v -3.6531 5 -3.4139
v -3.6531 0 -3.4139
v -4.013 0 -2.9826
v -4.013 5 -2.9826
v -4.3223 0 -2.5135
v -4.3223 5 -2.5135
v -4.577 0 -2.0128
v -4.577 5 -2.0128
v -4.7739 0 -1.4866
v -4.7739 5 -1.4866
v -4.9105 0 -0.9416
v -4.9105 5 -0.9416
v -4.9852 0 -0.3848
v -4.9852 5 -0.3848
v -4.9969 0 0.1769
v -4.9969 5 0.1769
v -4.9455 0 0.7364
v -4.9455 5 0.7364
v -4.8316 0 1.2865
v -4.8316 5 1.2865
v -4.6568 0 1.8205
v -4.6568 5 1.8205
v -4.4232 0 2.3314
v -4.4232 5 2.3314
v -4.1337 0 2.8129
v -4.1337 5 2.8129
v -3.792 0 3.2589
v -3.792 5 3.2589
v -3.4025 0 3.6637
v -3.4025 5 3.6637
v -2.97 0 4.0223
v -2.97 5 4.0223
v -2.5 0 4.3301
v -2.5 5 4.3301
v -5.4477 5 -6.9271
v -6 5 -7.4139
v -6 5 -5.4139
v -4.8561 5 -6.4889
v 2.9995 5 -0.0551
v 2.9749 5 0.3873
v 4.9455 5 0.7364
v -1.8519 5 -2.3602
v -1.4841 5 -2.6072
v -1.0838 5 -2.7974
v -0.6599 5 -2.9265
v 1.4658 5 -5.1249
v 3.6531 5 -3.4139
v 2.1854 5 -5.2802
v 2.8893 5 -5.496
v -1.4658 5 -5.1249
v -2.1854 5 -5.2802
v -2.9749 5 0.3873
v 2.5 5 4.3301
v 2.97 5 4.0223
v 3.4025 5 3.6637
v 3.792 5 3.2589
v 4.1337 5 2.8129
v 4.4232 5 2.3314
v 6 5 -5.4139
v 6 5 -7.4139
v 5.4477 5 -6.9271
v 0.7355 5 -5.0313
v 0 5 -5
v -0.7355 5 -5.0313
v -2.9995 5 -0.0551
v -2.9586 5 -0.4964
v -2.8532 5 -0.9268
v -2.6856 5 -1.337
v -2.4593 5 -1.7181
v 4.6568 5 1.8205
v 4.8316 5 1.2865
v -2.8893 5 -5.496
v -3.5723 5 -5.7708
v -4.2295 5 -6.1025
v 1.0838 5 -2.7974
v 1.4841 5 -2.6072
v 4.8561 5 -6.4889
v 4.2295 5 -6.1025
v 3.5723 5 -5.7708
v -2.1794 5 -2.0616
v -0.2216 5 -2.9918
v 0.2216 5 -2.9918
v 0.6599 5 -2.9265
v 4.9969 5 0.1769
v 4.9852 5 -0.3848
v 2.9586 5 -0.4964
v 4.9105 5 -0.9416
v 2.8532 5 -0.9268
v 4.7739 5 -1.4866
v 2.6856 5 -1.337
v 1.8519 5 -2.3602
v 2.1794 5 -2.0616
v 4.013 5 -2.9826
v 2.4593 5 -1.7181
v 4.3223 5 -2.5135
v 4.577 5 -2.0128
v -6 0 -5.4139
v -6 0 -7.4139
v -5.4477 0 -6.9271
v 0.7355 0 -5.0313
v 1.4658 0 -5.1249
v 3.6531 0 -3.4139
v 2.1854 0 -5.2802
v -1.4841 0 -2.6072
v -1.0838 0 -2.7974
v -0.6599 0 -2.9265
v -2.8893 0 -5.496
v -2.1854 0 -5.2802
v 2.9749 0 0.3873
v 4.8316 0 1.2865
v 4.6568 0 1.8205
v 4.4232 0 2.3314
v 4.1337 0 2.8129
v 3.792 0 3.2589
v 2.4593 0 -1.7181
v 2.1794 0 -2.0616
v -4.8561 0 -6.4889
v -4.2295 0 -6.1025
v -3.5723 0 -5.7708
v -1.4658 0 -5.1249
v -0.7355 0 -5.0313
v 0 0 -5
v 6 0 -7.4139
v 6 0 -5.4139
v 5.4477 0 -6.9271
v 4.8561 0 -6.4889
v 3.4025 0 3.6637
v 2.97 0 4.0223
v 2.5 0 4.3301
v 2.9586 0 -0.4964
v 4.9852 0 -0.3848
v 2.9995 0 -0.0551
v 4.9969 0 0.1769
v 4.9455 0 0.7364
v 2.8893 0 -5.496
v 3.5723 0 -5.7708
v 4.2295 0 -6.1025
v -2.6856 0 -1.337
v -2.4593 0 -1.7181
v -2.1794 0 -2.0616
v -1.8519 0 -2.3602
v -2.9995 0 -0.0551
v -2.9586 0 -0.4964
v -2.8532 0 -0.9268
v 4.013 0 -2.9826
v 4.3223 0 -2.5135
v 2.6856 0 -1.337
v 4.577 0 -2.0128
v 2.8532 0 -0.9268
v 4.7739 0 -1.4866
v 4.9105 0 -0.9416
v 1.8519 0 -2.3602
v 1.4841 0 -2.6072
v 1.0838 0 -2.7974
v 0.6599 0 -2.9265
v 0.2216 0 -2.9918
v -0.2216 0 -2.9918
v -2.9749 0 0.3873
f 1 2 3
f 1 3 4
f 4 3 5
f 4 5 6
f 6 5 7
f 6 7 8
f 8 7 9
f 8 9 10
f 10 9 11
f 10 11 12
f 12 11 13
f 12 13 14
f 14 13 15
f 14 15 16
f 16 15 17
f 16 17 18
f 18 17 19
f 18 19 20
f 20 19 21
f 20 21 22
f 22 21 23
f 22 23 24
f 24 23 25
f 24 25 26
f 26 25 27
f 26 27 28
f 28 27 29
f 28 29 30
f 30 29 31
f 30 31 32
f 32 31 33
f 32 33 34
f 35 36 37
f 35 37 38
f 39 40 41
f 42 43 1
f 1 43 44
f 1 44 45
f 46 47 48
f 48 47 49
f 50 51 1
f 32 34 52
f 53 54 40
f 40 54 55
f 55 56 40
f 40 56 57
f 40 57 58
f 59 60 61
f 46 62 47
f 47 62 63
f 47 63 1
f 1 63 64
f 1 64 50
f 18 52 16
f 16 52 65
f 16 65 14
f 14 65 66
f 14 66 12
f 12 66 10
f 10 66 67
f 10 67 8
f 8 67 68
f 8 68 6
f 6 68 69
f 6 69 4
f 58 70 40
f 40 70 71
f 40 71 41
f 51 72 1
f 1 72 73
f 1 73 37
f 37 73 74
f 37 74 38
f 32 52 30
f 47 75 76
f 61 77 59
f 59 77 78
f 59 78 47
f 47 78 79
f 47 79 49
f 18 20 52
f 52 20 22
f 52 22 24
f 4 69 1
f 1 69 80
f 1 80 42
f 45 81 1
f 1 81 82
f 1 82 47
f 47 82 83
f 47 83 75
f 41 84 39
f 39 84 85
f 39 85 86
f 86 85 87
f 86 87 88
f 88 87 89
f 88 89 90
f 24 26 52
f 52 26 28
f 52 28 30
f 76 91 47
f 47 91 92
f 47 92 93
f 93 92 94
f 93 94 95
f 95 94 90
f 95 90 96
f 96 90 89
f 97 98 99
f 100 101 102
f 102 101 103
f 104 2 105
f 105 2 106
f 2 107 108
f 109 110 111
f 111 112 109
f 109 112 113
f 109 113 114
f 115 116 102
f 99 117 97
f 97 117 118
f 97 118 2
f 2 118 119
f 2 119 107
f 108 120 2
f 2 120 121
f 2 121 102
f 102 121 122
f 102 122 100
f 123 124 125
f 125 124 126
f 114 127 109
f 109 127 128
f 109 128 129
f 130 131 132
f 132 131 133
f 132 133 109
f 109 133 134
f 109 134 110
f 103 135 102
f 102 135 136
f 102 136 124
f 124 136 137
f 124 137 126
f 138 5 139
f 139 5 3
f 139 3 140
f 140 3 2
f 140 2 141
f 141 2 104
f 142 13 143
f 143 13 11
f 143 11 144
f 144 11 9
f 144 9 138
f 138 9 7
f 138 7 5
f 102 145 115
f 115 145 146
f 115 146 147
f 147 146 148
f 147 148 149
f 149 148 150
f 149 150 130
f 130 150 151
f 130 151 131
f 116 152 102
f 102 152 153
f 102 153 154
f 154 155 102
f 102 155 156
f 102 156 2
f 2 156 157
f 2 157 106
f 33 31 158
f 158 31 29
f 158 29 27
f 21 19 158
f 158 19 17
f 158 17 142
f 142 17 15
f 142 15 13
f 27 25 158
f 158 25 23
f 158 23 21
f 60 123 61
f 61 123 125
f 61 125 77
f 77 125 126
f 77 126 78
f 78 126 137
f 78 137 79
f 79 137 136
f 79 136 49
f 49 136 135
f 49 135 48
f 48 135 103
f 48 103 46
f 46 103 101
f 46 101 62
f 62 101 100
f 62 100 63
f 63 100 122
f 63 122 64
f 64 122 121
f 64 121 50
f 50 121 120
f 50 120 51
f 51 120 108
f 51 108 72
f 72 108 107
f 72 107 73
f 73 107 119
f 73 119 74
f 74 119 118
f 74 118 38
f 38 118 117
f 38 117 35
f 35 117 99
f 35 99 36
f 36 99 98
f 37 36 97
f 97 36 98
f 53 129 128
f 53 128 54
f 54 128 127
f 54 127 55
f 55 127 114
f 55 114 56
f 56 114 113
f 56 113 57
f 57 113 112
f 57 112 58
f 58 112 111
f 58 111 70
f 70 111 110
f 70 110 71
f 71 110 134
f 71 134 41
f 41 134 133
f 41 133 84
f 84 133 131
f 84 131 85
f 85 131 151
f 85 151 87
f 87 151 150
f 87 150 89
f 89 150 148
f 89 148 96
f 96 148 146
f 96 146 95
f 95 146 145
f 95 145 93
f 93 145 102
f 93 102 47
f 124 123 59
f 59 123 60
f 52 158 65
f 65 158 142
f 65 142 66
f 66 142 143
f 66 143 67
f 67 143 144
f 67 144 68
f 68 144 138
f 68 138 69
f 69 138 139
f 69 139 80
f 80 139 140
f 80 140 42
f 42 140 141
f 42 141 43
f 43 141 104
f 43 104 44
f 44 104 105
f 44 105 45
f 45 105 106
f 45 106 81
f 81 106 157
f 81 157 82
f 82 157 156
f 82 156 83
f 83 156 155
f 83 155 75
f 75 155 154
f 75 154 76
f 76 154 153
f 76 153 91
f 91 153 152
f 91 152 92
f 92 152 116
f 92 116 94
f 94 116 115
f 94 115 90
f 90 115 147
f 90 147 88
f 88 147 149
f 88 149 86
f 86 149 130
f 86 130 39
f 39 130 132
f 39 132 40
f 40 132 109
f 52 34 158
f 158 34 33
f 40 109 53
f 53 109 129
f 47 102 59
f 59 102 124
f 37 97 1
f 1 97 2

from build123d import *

# Parameters (mm, degrees)
CROQUIS1_R              = 3
SALIENTE_EXTRUIR1_DEPTH = 5
CORTAR_EXTRUIR1_START   = -10
CORTAR_EXTRUIR1_DEPTH   = 10
CORTAR_EXTRUIR2_DEPTH   = 10


with BuildPart() as part:
    # Croquis1 → Saliente-Extruir1 (new body)
    with BuildSketch(Plane(origin=(0, 0, 0), x_dir=(1, 0, 0), z_dir=(0, 1, 0))):
        with BuildLine():
            Line((-6, 7.413947971), (-6, 3.413947971))
            Line((-6, 3.413947971), (-3.653075314, 3.413947971))
            ThreePointArc((-3.653075314, 3.413947971), (0, -5), (3.653075314, 3.413947971))
            Line((3.653075314, 3.413947971), (6, 3.413947971))
            Line((6, 3.413947971), (6, 7.413947971))
            ThreePointArc((6, 7.413947971), (0, 5), (-6, 7.413947971))
        make_face()
        Circle(CROQUIS1_R, mode=Mode.SUBTRACT)
    extrude(amount=SALIENTE_EXTRUIR1_DEPTH)

    # Croquis2 → Cortar-Extruir1 (cut)
    with BuildSketch(Plane(origin=(0, 5, 0), x_dir=(1, 0, 0), z_dir=(0, 1, 0)).offset(CORTAR_EXTRUIR1_START)):
        with BuildLine():
            ThreePointArc((-2.5, -4.330127019), (-1.294095226, -4.829629131), (0, -5))
            ThreePointArc((0, -5), (1.294095226, -4.829629131), (2.5, -4.330127019))
            Line((2.5, -4.330127019), (2.981780701, -0.330127019))
            ThreePointArc((2.981780701, -0.330127019), (2.995441712, -0.165314693), (3, 0))
            ThreePointArc((3, 0), (-0.165314693, 2.995441712), (-2.981780701, -0.330127019))
            Line((-2.981780701, -0.330127019), (-2.5, -4.330127019))
        make_face()
    extrude(amount=CORTAR_EXTRUIR1_DEPTH, mode=Mode.SUBTRACT)

    # Croquis3 → Cortar-Extruir2 (cut)
    with BuildSketch(Plane(origin=(0, 5, 0), x_dir=(1, 0, 0), z_dir=(0, 1, 0))):
        Polygon((3.653075314, 3.413947971), (6, 5.413947971), (6, 3.413947971), align=None)
        Polygon((-3.653075314, 3.413947971), (-6, 5.413947971), (-6, 3.413947971), align=None)
    extrude(amount=-CORTAR_EXTRUIR2_DEPTH, mode=Mode.SUBTRACT)


solid = part.part
